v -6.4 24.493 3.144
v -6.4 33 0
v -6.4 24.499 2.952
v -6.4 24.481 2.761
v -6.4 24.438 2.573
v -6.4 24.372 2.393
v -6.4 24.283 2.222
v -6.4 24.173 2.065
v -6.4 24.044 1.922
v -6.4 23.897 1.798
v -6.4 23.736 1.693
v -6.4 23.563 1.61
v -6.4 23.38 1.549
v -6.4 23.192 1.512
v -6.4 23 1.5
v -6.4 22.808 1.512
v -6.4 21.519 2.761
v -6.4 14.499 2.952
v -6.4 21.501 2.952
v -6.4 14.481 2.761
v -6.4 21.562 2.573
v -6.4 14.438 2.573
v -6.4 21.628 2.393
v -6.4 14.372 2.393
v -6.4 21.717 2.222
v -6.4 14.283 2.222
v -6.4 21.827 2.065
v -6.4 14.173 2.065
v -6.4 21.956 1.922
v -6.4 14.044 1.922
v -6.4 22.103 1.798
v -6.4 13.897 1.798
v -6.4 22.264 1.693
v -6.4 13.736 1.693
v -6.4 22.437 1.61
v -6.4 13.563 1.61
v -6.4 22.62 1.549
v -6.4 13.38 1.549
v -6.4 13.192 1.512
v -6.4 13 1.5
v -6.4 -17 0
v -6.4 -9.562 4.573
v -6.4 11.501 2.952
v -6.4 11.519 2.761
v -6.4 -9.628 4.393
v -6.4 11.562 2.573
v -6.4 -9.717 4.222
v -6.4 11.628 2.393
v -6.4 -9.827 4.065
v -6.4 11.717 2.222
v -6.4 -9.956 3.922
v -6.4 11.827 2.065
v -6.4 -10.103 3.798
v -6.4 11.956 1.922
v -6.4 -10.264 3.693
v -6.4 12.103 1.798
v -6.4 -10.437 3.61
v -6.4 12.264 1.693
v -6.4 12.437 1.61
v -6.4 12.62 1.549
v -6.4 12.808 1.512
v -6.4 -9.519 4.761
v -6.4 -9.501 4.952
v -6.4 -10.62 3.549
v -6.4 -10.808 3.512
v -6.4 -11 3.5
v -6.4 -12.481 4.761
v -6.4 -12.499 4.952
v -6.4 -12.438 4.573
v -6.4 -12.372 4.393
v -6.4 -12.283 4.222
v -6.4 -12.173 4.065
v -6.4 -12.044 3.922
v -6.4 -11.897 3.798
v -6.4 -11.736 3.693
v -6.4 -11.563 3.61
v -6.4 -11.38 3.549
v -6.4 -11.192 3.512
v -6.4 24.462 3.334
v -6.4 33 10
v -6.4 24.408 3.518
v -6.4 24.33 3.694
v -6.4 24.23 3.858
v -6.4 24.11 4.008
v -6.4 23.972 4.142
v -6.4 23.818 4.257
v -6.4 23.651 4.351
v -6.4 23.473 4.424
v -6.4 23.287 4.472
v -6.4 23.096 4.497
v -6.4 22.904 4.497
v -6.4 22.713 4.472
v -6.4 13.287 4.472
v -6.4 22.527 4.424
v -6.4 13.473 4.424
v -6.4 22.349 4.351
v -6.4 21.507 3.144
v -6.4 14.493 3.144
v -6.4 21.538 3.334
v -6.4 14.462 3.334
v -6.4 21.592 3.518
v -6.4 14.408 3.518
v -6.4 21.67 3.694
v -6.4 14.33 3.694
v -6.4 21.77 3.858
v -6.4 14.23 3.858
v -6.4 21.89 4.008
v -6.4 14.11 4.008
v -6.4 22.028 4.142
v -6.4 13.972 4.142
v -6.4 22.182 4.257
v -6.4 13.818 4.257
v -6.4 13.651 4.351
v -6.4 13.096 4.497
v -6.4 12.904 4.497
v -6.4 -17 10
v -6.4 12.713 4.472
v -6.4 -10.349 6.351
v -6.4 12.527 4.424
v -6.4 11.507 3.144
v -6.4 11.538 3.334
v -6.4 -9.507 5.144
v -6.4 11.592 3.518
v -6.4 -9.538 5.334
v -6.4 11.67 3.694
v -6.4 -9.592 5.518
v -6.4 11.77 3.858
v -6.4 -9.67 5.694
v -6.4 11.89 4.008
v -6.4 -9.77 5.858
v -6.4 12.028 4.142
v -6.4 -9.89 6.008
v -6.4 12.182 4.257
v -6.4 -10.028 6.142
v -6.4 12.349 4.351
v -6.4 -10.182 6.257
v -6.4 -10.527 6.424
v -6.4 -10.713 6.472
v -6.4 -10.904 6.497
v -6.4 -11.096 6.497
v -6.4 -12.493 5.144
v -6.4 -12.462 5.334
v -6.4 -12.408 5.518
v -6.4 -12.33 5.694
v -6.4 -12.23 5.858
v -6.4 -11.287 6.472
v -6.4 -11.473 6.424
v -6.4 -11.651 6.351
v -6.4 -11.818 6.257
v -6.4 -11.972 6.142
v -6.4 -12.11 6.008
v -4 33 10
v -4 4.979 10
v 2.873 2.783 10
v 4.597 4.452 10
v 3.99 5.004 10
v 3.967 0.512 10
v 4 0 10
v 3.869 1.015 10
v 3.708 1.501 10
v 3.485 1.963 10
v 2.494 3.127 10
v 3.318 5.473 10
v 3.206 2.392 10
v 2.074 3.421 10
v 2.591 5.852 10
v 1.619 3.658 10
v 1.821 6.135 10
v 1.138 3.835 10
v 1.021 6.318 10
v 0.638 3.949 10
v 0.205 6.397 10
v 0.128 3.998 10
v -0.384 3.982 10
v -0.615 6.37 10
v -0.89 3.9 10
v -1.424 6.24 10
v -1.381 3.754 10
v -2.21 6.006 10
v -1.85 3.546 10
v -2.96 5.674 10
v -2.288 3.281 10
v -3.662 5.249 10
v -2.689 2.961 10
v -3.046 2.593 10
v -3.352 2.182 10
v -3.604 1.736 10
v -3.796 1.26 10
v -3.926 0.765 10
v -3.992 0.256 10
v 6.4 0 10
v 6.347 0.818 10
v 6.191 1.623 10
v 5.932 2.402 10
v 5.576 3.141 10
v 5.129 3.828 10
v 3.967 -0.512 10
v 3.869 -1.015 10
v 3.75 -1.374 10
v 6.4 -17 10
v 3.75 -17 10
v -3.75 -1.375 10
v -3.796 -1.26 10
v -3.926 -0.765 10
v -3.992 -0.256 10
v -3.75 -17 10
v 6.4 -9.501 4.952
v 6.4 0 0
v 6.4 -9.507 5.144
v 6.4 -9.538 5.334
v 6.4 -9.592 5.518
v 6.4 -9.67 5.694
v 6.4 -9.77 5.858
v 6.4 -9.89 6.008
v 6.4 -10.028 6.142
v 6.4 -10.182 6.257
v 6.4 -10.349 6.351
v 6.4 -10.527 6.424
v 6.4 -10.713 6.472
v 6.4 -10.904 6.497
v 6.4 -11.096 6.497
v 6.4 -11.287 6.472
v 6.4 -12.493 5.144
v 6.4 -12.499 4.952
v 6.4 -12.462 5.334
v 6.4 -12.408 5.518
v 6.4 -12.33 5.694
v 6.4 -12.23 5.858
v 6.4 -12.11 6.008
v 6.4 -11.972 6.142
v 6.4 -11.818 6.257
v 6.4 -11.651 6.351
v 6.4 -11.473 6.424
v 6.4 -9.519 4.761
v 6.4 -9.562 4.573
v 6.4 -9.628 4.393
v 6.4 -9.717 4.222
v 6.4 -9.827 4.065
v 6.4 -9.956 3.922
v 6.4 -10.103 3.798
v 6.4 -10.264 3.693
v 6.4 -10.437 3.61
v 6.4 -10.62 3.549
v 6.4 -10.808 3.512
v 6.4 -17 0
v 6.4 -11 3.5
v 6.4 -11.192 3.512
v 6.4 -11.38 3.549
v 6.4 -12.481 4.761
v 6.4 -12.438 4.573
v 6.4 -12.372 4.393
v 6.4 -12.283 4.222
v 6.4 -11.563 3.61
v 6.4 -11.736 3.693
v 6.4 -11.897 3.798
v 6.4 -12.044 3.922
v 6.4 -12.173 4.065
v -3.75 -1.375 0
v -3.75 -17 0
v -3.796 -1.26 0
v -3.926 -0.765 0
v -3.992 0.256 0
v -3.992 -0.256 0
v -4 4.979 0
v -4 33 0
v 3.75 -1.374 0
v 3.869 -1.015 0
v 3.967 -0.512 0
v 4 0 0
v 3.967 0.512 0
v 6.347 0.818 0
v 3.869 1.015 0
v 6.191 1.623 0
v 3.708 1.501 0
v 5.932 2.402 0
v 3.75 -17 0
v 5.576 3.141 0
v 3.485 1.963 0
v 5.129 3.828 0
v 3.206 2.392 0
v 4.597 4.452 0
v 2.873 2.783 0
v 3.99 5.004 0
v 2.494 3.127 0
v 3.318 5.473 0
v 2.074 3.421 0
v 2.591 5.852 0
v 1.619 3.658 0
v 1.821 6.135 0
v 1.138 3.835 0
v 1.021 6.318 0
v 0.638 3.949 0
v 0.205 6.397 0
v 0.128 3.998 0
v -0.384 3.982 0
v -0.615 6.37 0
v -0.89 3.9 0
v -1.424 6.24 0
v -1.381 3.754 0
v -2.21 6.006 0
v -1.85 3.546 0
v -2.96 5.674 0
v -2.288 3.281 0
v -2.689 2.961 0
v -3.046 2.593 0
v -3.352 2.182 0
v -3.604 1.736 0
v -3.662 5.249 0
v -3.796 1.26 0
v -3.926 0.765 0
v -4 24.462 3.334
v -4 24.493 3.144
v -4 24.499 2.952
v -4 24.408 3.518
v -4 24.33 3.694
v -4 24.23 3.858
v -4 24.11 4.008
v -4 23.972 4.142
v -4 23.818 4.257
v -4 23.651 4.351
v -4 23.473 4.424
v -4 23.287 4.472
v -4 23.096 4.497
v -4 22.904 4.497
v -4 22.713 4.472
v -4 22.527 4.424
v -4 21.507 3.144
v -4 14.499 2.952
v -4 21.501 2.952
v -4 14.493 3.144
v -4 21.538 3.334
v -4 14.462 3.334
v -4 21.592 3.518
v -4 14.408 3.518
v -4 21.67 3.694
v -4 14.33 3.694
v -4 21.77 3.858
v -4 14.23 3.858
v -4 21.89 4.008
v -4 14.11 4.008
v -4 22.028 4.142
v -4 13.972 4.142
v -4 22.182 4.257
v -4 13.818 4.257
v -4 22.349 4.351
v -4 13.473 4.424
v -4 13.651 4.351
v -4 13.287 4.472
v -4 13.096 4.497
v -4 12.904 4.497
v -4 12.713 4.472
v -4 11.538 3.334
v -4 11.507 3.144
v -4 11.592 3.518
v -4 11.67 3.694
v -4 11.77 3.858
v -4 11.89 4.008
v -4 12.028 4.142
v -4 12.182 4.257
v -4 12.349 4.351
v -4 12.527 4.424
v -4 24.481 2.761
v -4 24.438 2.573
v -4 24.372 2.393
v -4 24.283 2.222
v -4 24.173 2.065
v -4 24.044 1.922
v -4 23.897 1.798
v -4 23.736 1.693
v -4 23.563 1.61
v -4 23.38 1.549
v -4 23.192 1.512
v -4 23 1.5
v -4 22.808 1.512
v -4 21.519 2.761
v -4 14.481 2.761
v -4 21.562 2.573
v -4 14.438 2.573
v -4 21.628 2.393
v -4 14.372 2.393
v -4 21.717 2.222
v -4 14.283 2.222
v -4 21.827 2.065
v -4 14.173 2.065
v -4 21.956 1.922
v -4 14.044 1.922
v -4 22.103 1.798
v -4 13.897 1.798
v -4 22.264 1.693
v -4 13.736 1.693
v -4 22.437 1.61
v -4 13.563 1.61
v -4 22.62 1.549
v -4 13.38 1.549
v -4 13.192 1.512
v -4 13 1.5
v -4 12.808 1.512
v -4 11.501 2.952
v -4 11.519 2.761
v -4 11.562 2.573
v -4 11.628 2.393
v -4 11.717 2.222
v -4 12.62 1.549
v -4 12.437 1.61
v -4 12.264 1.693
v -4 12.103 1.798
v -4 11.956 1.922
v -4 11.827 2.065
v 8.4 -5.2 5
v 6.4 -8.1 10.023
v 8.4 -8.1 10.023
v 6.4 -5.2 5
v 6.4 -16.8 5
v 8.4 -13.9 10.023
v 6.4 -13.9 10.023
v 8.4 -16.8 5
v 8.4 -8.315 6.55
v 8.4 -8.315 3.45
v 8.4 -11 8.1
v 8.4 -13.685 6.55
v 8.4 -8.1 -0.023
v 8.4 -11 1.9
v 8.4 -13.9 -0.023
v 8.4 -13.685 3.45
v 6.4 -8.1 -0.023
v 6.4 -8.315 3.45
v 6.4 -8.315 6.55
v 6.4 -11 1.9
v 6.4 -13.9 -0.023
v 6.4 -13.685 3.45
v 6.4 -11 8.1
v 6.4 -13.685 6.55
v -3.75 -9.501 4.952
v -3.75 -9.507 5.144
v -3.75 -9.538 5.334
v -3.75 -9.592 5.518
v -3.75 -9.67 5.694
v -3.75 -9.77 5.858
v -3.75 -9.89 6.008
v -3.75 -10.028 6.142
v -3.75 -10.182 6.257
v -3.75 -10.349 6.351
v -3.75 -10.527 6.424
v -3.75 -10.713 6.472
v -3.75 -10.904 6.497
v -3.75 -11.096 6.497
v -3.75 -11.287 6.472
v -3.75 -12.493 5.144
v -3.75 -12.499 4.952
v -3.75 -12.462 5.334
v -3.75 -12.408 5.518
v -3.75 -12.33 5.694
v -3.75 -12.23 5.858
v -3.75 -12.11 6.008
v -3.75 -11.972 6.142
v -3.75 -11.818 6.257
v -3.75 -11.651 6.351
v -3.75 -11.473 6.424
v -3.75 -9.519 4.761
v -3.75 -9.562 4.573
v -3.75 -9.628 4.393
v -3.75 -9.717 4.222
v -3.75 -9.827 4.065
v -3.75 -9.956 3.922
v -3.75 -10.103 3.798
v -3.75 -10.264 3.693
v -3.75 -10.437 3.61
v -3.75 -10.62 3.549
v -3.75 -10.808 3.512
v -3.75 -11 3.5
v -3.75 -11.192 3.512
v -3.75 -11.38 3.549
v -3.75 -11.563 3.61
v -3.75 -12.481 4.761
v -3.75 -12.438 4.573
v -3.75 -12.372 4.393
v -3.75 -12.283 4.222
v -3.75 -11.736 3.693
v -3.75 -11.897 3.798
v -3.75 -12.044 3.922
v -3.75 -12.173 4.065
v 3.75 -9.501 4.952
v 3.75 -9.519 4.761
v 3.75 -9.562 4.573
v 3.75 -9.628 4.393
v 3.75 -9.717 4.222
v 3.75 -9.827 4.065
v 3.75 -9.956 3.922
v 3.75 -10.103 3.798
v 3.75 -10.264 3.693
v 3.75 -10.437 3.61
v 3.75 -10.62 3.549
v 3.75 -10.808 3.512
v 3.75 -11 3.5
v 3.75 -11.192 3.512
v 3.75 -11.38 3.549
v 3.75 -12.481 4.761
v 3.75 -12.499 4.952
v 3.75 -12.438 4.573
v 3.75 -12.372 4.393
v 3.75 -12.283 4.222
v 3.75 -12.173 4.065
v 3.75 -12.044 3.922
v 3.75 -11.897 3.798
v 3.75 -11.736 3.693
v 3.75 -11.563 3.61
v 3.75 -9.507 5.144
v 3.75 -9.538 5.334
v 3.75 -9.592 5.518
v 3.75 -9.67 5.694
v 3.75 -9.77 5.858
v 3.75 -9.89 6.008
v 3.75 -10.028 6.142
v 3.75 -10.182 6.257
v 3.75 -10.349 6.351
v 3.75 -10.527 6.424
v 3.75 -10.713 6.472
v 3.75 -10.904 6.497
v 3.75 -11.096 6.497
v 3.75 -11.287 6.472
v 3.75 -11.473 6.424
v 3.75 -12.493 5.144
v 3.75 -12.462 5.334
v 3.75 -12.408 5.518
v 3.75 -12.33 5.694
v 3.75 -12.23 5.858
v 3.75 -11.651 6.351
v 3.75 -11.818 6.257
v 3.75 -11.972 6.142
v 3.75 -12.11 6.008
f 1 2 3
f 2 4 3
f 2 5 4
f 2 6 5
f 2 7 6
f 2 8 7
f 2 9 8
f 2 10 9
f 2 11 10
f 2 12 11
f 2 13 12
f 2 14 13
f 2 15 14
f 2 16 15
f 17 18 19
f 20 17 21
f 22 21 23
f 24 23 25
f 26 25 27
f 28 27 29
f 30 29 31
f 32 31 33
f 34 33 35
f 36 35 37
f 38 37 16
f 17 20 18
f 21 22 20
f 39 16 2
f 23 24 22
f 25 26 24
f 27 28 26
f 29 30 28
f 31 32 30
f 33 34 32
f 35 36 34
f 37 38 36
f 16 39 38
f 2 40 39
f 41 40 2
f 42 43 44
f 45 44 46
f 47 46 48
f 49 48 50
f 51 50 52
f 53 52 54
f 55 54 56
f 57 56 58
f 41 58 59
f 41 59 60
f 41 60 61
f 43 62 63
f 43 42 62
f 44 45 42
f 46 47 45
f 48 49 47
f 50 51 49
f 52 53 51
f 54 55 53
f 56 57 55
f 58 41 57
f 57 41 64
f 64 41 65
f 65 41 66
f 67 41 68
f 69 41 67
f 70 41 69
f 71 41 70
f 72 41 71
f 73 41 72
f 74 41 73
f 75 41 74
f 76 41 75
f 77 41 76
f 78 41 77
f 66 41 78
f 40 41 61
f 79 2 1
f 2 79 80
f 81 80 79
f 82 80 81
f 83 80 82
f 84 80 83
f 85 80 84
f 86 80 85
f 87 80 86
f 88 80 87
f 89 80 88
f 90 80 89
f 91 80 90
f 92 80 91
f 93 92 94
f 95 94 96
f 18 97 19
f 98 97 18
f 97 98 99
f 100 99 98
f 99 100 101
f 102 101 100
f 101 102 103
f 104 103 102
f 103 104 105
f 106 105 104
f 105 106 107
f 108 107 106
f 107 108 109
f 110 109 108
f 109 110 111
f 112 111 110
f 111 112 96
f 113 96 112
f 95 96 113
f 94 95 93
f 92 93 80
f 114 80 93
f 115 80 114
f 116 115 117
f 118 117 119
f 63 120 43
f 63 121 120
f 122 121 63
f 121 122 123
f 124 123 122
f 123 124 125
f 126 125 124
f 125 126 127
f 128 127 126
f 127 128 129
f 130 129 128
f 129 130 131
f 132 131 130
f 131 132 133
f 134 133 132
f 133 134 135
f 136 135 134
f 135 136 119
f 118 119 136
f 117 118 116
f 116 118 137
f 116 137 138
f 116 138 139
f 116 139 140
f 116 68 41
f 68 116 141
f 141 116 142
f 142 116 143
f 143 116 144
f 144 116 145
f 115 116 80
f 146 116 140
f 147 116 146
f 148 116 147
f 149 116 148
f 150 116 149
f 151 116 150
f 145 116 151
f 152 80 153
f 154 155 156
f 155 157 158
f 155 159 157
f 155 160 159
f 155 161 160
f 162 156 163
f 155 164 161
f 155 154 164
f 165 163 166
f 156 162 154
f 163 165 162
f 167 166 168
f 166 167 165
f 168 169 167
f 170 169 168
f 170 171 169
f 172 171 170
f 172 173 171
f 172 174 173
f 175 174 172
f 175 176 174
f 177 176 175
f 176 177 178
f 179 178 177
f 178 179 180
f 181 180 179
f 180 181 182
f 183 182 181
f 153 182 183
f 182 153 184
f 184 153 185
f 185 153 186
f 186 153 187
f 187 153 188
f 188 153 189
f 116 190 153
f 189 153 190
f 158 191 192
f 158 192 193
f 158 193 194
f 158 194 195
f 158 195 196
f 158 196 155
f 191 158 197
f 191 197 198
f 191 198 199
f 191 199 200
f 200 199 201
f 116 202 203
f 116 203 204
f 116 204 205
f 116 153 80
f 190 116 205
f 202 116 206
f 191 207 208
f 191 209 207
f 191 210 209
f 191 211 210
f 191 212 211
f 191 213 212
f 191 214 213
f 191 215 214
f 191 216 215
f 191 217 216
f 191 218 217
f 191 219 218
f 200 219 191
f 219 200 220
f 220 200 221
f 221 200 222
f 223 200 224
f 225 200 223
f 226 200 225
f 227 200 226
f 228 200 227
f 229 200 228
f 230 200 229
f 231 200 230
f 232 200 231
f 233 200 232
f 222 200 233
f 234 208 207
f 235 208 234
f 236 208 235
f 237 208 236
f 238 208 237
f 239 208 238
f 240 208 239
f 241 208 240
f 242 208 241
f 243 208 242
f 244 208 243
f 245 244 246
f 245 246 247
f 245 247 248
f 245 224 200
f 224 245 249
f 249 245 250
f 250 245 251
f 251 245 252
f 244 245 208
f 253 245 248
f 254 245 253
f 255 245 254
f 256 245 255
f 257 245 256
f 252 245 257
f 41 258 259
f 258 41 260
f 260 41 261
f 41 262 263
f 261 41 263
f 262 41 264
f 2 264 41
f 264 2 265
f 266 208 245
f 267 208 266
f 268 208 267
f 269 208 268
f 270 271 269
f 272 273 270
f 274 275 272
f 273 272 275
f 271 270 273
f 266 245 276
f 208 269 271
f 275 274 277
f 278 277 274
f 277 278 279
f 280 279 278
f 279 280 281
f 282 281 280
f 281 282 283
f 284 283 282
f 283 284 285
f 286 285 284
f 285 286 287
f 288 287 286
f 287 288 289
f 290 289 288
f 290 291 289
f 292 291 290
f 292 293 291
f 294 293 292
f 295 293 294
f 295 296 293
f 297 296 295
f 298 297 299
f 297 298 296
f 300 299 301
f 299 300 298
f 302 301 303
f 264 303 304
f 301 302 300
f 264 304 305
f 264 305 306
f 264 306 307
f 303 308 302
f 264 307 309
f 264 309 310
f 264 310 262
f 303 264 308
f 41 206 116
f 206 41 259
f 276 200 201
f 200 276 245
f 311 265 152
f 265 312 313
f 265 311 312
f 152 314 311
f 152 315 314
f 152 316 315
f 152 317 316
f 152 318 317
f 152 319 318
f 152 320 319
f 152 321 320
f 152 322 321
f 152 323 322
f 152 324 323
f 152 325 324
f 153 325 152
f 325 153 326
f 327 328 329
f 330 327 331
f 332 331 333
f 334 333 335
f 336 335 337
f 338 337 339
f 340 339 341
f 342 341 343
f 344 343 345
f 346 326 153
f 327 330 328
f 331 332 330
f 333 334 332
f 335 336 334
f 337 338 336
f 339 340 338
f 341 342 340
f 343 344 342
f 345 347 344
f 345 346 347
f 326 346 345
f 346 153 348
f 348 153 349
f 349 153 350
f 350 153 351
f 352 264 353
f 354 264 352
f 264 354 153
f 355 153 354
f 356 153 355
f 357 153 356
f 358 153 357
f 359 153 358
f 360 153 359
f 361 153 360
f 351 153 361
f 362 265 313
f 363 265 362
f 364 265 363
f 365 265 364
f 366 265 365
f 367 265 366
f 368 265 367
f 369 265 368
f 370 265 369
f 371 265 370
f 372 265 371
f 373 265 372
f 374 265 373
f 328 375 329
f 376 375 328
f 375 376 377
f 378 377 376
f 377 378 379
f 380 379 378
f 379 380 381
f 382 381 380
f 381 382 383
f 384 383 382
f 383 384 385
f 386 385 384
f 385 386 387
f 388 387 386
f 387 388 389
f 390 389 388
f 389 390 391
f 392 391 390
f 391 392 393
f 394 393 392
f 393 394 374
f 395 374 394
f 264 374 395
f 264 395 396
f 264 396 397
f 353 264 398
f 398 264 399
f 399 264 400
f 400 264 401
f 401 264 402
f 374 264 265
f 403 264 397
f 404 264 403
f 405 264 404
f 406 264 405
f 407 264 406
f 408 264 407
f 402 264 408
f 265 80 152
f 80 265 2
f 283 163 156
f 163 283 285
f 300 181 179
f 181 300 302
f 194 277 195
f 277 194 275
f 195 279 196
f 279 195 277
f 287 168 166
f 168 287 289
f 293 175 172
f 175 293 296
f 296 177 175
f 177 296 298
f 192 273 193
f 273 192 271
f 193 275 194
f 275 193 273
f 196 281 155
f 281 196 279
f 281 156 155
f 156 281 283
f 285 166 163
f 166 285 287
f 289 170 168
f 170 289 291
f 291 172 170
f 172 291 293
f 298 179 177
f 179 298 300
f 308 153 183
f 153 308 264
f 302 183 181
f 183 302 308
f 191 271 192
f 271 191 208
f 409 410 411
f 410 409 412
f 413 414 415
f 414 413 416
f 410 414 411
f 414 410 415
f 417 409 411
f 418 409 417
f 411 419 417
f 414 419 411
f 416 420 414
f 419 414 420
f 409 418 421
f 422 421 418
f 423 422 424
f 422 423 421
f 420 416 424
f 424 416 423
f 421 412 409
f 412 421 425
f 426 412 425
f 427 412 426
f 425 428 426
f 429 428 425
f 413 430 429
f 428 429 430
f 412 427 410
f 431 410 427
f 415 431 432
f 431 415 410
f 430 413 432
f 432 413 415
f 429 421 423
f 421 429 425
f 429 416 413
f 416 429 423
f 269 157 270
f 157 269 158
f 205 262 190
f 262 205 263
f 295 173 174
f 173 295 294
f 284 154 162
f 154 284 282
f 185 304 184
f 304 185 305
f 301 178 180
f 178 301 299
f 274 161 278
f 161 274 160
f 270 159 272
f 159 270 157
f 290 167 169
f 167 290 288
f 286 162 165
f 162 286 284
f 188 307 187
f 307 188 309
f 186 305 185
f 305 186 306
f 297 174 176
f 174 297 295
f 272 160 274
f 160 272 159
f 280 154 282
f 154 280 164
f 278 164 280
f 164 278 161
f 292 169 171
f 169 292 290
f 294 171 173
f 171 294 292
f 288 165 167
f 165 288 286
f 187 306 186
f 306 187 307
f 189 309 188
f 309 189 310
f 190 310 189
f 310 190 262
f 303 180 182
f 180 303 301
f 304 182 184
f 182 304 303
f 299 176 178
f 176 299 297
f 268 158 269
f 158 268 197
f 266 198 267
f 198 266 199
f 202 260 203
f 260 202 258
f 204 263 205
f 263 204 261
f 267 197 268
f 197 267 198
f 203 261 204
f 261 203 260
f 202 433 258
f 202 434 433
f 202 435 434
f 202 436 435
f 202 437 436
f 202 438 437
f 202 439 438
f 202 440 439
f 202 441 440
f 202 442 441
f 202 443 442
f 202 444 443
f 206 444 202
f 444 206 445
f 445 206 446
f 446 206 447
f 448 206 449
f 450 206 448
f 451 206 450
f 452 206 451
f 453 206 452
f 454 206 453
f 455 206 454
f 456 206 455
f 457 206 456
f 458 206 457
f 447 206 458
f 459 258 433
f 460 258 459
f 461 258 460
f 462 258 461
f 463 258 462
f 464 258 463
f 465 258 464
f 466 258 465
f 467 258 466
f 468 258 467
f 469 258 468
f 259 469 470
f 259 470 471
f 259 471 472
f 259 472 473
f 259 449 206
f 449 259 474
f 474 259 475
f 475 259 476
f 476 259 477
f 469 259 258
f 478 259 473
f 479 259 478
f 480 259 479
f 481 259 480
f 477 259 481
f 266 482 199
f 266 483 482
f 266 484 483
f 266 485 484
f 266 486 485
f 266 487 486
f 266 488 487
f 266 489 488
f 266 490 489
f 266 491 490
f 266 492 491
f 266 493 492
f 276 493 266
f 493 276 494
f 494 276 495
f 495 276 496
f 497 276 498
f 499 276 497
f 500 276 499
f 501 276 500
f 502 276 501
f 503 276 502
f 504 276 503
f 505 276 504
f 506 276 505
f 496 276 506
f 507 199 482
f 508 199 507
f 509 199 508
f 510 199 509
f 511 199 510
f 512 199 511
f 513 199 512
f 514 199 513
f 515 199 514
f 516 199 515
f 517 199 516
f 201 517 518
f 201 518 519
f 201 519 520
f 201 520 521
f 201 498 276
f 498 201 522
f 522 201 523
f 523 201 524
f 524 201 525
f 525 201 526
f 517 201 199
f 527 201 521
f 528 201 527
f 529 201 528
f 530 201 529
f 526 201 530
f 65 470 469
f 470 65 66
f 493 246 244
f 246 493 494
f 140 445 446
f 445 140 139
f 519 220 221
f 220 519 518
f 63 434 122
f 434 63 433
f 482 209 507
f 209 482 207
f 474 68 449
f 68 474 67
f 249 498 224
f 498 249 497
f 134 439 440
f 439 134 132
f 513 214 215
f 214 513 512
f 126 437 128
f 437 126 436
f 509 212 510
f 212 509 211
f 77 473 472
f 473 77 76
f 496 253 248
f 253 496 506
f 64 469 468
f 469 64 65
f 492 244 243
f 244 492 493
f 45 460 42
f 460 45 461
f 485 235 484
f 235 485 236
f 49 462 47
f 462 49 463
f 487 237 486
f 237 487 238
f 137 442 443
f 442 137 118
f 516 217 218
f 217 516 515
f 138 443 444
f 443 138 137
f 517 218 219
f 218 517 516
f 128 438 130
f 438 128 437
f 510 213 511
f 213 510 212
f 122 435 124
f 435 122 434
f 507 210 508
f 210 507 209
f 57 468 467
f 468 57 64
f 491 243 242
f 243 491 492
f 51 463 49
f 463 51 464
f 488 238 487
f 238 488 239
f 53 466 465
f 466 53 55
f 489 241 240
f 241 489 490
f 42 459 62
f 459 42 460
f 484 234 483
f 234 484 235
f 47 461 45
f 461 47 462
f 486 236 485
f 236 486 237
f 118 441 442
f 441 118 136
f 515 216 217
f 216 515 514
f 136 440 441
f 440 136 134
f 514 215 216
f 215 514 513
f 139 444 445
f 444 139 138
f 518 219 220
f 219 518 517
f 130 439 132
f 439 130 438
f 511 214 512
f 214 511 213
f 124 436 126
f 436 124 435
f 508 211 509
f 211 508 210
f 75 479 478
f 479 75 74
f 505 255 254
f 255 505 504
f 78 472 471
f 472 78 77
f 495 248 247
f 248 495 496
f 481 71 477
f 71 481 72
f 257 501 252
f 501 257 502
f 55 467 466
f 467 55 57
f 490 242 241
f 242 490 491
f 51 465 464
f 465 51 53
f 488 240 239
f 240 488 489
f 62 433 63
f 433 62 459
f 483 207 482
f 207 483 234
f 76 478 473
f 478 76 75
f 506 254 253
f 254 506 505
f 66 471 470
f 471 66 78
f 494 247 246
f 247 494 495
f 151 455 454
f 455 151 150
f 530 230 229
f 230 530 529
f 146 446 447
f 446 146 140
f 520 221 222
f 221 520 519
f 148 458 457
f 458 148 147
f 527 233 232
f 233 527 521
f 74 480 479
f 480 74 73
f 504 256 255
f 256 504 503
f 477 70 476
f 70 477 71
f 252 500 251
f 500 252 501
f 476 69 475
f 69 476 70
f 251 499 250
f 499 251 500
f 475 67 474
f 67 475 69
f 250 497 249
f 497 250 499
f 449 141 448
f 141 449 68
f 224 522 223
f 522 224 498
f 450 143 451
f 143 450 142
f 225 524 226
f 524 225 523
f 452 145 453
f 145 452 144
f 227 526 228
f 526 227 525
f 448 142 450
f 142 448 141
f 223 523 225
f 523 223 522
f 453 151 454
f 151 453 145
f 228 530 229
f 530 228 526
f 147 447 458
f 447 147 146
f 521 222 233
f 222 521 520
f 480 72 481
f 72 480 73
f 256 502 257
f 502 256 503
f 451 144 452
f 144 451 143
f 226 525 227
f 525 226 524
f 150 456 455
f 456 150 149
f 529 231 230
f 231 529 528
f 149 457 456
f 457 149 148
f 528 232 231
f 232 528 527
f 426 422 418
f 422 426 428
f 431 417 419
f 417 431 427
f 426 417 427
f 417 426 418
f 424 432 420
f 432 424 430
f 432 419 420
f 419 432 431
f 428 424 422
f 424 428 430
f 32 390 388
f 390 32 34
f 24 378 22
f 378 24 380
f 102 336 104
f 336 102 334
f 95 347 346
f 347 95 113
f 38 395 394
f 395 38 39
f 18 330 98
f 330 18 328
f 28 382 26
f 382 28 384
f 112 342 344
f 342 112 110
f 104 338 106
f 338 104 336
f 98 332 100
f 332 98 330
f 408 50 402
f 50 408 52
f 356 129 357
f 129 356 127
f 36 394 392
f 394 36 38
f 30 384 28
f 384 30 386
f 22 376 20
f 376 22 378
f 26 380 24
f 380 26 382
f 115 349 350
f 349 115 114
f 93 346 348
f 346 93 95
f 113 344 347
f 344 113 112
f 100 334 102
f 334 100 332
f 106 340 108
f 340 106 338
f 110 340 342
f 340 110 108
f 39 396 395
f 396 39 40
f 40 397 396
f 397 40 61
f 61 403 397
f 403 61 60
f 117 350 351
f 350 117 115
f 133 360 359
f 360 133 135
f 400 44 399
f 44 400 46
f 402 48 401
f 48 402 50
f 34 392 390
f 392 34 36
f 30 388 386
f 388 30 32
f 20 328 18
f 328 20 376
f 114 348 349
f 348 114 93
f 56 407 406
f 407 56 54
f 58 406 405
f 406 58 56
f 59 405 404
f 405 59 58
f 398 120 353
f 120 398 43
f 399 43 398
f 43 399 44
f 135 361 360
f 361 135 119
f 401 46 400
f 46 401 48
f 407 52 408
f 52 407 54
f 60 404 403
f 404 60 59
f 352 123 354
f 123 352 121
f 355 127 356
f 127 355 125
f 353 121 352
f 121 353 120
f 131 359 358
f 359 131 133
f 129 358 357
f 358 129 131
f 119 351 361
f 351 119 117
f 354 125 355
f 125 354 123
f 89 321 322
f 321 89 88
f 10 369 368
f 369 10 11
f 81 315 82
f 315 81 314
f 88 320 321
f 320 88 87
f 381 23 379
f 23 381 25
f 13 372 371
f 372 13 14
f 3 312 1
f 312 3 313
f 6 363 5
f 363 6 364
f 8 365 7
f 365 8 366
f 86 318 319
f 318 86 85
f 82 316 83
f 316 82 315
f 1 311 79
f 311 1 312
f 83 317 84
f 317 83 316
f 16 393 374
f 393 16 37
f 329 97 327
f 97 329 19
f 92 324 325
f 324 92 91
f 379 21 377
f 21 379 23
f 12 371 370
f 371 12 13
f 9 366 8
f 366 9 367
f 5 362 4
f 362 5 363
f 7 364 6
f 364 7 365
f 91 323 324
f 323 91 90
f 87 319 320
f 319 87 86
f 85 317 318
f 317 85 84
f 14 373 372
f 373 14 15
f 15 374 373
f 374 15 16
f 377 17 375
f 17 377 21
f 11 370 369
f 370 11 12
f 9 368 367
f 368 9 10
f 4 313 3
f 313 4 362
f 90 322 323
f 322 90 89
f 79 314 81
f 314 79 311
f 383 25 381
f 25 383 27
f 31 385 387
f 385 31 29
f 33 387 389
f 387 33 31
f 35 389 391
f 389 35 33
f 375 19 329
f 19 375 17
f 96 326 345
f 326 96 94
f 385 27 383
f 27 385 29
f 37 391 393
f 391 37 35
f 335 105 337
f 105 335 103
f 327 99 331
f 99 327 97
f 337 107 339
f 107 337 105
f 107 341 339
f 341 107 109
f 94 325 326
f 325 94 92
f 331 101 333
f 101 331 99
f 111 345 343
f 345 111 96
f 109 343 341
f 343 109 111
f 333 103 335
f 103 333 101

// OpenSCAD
rod_d = 8;
w=0.4*6;


difference()
{
    rod_holder(rod_d, w);
    #rod_space_and_hole(rod_d);
    translate([0,-11,0])
    screew_hole(d=3);
    translate([0,-11,0])
    screew_nut_hole(d=6.2);

    translate([0,13,-2])
    screew_hole(d=3);
    translate([0,13+10,-2])    
    screew_hole(d=3);
}


module rod_holder(rod_d, w)
{
    width = rod_d+2*w;
    cylinder(d=width ,h=10,$fn=49);
    translate([-width/2,-17,0])
    {
        cube([width,17,10]);
        cube([w,50,10]);
    }
    translate([width/2,-11,5])
    rotate([90,0,90])
    cylinder(d=11.6,h=2,$fn=6);
}

module screew_hole(d=3)
{
    translate([-10,0,10/2])
    rotate([0,90,0])
    cylinder(d=d,h=20,$fn=49);
}

module screew_nut_hole(d=6)
{
    width = rod_d+2*w;
    
    translate([width/2,0,10/2])
    rotate([90,90,90])
    #cylinder(d=d,h=2,$fn=6);
}

module rod_space_and_hole(rod_d)
{
    rod(rod_d);
    rod_space(rod_d);
}

module rod(d=8)
{
    translate([0,0,-5])
    cylinder(d=d,h=20,$fn=49);
}

module rod_space(d=8)
{
    translate([-7.5/2,-20,-5])
    cube([7.5,20,20]);
}
